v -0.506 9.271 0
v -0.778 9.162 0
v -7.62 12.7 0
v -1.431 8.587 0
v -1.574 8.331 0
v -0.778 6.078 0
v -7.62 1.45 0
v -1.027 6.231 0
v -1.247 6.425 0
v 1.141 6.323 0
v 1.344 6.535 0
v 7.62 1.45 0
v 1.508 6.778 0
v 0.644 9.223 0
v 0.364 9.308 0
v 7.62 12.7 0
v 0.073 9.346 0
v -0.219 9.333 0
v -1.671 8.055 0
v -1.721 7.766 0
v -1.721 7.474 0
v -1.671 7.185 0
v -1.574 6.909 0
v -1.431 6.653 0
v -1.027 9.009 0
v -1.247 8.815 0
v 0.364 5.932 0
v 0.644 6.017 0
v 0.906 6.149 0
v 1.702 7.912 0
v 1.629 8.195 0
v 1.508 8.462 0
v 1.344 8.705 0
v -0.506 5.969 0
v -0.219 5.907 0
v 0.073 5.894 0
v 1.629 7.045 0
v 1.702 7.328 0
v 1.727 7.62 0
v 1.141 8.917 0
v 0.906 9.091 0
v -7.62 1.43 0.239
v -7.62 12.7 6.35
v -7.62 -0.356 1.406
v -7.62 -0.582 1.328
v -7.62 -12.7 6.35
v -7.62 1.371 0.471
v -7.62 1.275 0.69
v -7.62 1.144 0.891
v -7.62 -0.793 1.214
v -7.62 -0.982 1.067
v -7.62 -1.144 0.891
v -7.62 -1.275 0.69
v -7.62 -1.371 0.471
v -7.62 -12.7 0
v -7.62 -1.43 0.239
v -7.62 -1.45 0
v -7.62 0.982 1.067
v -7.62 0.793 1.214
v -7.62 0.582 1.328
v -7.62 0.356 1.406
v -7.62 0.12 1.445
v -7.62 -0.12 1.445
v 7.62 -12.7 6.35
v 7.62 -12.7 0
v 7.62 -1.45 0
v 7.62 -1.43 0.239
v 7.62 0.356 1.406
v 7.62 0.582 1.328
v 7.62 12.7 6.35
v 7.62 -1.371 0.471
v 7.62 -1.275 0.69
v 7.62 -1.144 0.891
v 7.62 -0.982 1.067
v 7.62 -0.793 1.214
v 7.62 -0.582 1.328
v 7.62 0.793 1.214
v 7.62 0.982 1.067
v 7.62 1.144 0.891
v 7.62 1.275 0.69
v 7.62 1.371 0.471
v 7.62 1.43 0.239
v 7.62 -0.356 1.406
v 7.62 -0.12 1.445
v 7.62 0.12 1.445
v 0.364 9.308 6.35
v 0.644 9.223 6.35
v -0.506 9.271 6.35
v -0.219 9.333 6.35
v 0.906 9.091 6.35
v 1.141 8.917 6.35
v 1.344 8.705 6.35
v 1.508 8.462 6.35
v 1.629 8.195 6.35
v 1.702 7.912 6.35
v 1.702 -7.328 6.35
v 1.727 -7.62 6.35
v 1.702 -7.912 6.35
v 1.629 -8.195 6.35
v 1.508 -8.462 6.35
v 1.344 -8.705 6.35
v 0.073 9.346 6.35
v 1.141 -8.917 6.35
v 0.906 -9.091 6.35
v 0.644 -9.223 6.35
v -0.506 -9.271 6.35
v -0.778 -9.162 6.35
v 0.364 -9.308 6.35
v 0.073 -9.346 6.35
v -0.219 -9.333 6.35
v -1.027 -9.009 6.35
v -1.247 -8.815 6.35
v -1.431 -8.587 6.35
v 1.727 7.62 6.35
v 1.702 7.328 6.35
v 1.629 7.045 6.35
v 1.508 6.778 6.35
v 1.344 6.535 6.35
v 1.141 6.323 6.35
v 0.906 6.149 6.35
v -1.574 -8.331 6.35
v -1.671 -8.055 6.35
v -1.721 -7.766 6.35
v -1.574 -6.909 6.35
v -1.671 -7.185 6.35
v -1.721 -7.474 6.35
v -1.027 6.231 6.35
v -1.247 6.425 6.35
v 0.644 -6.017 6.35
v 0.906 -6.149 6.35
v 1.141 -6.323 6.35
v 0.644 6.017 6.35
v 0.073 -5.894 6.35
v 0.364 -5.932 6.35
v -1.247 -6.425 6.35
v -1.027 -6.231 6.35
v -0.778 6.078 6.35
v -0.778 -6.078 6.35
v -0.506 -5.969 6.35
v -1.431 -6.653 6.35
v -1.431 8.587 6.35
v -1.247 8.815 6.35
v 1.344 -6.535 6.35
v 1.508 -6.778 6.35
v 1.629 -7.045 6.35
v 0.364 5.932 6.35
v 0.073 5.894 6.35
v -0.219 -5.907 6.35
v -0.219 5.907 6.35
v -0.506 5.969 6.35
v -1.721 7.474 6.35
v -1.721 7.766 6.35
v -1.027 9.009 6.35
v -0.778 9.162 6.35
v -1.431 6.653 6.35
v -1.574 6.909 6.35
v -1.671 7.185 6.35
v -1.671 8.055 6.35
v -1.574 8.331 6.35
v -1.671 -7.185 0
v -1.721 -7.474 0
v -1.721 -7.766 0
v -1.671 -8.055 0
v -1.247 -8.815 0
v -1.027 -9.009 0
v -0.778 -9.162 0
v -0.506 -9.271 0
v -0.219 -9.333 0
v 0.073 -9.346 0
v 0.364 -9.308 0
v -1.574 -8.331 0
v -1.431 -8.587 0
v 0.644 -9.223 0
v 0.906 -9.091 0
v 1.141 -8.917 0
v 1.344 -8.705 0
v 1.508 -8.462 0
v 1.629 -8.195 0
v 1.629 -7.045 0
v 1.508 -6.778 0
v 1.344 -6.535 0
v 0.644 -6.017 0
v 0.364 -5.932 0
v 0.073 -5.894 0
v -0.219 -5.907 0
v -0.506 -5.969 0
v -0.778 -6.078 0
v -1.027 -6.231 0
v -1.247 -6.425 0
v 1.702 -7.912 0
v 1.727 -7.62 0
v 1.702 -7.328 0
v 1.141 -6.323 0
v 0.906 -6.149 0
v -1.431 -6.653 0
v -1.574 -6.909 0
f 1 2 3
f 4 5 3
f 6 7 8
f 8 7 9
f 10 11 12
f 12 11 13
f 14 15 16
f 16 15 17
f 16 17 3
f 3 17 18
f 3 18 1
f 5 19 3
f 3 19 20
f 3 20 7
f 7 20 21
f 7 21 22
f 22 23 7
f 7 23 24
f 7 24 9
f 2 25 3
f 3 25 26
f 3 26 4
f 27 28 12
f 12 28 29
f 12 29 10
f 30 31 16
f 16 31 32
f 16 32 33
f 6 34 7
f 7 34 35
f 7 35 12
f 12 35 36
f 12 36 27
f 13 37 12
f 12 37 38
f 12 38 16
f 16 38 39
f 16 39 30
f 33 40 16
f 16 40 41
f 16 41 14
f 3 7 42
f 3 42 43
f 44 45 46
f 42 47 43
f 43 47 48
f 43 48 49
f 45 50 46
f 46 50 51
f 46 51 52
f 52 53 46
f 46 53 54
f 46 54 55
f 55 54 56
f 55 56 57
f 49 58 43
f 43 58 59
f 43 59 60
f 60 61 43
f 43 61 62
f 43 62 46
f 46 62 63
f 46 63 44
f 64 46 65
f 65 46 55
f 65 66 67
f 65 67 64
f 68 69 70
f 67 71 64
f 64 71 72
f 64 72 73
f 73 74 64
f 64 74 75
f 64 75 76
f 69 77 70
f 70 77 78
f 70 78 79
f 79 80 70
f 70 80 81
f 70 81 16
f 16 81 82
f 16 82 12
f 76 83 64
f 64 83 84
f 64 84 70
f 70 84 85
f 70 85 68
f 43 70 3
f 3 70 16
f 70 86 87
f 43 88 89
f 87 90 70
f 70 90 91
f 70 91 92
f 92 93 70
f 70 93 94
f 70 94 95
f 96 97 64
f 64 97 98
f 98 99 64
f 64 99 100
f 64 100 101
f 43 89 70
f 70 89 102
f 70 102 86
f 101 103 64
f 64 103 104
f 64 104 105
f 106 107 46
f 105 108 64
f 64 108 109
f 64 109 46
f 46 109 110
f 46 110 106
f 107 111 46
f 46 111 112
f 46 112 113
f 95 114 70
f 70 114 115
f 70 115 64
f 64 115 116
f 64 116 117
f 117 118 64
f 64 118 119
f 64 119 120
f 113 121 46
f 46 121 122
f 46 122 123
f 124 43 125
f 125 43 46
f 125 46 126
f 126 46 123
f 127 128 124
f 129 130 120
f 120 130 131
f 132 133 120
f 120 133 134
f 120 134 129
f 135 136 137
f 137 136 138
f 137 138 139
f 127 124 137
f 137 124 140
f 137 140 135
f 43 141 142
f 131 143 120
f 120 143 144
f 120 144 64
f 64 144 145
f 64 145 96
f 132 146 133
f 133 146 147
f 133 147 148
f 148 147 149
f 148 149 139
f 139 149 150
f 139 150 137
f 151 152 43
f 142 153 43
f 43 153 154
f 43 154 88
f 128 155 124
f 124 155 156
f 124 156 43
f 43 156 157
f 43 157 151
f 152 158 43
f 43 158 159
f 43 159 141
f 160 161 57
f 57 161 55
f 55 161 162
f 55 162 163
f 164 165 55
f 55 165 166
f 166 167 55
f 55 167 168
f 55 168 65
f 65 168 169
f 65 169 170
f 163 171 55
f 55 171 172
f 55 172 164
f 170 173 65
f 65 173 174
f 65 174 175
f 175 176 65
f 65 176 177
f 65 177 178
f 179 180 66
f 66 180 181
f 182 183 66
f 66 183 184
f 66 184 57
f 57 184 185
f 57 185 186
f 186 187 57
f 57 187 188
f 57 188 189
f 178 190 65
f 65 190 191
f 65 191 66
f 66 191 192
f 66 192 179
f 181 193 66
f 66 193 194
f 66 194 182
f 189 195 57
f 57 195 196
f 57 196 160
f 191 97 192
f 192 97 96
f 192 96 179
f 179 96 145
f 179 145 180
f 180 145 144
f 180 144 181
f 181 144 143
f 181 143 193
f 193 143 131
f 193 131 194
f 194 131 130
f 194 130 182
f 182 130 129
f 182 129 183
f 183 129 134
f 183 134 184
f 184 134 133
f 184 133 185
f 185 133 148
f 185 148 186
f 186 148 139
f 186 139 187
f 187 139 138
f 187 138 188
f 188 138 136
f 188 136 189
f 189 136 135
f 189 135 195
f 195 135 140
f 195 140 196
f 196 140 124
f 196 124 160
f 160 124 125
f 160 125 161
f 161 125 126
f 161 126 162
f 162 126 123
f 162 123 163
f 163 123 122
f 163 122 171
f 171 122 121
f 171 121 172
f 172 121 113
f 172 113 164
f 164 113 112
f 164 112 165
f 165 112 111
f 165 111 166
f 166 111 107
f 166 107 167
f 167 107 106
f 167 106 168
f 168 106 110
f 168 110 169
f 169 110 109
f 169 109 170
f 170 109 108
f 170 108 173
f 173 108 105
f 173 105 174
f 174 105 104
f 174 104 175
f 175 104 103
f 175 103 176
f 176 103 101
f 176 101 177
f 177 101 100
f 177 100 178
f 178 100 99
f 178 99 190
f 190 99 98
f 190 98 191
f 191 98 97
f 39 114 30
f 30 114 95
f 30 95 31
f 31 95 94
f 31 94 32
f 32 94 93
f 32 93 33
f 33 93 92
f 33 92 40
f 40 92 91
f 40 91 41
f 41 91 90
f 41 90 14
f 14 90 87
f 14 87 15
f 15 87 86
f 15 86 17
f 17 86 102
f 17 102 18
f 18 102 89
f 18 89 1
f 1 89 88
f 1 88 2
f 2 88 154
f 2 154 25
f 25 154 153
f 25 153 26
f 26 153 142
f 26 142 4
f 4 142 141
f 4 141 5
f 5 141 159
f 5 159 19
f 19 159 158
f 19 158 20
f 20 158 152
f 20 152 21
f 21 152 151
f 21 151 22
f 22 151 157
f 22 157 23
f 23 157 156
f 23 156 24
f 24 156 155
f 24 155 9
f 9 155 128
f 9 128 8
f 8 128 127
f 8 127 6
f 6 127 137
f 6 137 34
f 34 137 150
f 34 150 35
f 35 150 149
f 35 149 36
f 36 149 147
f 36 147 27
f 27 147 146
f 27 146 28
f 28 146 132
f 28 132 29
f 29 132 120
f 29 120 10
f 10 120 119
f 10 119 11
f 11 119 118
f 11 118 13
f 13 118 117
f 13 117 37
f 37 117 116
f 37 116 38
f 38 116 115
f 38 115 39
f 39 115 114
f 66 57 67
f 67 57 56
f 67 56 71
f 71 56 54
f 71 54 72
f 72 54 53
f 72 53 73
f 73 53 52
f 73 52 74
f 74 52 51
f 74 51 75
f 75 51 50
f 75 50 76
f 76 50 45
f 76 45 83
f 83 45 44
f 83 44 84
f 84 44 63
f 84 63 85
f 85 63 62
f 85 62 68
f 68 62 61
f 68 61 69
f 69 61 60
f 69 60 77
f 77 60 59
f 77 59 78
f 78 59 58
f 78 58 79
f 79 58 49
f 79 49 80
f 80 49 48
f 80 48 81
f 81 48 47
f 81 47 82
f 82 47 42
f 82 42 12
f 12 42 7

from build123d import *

# Parameters (mm, degrees)
SKETCH1_W                   = 15.24
SKETCH1_H                   = 25.4
BOSS_EXTRUDE1_DEPTH         = 6.35
F_29_0_136_DIAMETER_HOLE1_D = 3.4544
SKETCH6_R                   = 1.45
CUT_EXTRUDE1_DEPTH          = 16.24


with BuildPart() as part:
    # Sketch1 → Boss-Extrude1 (new body)
    with BuildSketch(Plane.XY):
        Rectangle(SKETCH1_W, SKETCH1_H)
    extrude(amount=BOSS_EXTRUDE1_DEPTH)

    # #29 (0.136) Diameter Hole1 (through all)
    with Locations(Plane.XY.offset(6.35)):
        with Locations((0, -7.62), (0, 7.62)):
            Hole(F_29_0_136_DIAMETER_HOLE1_D / 2)

    # Sketch6 → Cut-Extrude1 (cut, through all)
    with BuildSketch(Plane.ZY.offset(7.62)):
        Circle(SKETCH6_R)
    extrude(amount=-CUT_EXTRUDE1_DEPTH, mode=Mode.SUBTRACT)


solid = part.part
